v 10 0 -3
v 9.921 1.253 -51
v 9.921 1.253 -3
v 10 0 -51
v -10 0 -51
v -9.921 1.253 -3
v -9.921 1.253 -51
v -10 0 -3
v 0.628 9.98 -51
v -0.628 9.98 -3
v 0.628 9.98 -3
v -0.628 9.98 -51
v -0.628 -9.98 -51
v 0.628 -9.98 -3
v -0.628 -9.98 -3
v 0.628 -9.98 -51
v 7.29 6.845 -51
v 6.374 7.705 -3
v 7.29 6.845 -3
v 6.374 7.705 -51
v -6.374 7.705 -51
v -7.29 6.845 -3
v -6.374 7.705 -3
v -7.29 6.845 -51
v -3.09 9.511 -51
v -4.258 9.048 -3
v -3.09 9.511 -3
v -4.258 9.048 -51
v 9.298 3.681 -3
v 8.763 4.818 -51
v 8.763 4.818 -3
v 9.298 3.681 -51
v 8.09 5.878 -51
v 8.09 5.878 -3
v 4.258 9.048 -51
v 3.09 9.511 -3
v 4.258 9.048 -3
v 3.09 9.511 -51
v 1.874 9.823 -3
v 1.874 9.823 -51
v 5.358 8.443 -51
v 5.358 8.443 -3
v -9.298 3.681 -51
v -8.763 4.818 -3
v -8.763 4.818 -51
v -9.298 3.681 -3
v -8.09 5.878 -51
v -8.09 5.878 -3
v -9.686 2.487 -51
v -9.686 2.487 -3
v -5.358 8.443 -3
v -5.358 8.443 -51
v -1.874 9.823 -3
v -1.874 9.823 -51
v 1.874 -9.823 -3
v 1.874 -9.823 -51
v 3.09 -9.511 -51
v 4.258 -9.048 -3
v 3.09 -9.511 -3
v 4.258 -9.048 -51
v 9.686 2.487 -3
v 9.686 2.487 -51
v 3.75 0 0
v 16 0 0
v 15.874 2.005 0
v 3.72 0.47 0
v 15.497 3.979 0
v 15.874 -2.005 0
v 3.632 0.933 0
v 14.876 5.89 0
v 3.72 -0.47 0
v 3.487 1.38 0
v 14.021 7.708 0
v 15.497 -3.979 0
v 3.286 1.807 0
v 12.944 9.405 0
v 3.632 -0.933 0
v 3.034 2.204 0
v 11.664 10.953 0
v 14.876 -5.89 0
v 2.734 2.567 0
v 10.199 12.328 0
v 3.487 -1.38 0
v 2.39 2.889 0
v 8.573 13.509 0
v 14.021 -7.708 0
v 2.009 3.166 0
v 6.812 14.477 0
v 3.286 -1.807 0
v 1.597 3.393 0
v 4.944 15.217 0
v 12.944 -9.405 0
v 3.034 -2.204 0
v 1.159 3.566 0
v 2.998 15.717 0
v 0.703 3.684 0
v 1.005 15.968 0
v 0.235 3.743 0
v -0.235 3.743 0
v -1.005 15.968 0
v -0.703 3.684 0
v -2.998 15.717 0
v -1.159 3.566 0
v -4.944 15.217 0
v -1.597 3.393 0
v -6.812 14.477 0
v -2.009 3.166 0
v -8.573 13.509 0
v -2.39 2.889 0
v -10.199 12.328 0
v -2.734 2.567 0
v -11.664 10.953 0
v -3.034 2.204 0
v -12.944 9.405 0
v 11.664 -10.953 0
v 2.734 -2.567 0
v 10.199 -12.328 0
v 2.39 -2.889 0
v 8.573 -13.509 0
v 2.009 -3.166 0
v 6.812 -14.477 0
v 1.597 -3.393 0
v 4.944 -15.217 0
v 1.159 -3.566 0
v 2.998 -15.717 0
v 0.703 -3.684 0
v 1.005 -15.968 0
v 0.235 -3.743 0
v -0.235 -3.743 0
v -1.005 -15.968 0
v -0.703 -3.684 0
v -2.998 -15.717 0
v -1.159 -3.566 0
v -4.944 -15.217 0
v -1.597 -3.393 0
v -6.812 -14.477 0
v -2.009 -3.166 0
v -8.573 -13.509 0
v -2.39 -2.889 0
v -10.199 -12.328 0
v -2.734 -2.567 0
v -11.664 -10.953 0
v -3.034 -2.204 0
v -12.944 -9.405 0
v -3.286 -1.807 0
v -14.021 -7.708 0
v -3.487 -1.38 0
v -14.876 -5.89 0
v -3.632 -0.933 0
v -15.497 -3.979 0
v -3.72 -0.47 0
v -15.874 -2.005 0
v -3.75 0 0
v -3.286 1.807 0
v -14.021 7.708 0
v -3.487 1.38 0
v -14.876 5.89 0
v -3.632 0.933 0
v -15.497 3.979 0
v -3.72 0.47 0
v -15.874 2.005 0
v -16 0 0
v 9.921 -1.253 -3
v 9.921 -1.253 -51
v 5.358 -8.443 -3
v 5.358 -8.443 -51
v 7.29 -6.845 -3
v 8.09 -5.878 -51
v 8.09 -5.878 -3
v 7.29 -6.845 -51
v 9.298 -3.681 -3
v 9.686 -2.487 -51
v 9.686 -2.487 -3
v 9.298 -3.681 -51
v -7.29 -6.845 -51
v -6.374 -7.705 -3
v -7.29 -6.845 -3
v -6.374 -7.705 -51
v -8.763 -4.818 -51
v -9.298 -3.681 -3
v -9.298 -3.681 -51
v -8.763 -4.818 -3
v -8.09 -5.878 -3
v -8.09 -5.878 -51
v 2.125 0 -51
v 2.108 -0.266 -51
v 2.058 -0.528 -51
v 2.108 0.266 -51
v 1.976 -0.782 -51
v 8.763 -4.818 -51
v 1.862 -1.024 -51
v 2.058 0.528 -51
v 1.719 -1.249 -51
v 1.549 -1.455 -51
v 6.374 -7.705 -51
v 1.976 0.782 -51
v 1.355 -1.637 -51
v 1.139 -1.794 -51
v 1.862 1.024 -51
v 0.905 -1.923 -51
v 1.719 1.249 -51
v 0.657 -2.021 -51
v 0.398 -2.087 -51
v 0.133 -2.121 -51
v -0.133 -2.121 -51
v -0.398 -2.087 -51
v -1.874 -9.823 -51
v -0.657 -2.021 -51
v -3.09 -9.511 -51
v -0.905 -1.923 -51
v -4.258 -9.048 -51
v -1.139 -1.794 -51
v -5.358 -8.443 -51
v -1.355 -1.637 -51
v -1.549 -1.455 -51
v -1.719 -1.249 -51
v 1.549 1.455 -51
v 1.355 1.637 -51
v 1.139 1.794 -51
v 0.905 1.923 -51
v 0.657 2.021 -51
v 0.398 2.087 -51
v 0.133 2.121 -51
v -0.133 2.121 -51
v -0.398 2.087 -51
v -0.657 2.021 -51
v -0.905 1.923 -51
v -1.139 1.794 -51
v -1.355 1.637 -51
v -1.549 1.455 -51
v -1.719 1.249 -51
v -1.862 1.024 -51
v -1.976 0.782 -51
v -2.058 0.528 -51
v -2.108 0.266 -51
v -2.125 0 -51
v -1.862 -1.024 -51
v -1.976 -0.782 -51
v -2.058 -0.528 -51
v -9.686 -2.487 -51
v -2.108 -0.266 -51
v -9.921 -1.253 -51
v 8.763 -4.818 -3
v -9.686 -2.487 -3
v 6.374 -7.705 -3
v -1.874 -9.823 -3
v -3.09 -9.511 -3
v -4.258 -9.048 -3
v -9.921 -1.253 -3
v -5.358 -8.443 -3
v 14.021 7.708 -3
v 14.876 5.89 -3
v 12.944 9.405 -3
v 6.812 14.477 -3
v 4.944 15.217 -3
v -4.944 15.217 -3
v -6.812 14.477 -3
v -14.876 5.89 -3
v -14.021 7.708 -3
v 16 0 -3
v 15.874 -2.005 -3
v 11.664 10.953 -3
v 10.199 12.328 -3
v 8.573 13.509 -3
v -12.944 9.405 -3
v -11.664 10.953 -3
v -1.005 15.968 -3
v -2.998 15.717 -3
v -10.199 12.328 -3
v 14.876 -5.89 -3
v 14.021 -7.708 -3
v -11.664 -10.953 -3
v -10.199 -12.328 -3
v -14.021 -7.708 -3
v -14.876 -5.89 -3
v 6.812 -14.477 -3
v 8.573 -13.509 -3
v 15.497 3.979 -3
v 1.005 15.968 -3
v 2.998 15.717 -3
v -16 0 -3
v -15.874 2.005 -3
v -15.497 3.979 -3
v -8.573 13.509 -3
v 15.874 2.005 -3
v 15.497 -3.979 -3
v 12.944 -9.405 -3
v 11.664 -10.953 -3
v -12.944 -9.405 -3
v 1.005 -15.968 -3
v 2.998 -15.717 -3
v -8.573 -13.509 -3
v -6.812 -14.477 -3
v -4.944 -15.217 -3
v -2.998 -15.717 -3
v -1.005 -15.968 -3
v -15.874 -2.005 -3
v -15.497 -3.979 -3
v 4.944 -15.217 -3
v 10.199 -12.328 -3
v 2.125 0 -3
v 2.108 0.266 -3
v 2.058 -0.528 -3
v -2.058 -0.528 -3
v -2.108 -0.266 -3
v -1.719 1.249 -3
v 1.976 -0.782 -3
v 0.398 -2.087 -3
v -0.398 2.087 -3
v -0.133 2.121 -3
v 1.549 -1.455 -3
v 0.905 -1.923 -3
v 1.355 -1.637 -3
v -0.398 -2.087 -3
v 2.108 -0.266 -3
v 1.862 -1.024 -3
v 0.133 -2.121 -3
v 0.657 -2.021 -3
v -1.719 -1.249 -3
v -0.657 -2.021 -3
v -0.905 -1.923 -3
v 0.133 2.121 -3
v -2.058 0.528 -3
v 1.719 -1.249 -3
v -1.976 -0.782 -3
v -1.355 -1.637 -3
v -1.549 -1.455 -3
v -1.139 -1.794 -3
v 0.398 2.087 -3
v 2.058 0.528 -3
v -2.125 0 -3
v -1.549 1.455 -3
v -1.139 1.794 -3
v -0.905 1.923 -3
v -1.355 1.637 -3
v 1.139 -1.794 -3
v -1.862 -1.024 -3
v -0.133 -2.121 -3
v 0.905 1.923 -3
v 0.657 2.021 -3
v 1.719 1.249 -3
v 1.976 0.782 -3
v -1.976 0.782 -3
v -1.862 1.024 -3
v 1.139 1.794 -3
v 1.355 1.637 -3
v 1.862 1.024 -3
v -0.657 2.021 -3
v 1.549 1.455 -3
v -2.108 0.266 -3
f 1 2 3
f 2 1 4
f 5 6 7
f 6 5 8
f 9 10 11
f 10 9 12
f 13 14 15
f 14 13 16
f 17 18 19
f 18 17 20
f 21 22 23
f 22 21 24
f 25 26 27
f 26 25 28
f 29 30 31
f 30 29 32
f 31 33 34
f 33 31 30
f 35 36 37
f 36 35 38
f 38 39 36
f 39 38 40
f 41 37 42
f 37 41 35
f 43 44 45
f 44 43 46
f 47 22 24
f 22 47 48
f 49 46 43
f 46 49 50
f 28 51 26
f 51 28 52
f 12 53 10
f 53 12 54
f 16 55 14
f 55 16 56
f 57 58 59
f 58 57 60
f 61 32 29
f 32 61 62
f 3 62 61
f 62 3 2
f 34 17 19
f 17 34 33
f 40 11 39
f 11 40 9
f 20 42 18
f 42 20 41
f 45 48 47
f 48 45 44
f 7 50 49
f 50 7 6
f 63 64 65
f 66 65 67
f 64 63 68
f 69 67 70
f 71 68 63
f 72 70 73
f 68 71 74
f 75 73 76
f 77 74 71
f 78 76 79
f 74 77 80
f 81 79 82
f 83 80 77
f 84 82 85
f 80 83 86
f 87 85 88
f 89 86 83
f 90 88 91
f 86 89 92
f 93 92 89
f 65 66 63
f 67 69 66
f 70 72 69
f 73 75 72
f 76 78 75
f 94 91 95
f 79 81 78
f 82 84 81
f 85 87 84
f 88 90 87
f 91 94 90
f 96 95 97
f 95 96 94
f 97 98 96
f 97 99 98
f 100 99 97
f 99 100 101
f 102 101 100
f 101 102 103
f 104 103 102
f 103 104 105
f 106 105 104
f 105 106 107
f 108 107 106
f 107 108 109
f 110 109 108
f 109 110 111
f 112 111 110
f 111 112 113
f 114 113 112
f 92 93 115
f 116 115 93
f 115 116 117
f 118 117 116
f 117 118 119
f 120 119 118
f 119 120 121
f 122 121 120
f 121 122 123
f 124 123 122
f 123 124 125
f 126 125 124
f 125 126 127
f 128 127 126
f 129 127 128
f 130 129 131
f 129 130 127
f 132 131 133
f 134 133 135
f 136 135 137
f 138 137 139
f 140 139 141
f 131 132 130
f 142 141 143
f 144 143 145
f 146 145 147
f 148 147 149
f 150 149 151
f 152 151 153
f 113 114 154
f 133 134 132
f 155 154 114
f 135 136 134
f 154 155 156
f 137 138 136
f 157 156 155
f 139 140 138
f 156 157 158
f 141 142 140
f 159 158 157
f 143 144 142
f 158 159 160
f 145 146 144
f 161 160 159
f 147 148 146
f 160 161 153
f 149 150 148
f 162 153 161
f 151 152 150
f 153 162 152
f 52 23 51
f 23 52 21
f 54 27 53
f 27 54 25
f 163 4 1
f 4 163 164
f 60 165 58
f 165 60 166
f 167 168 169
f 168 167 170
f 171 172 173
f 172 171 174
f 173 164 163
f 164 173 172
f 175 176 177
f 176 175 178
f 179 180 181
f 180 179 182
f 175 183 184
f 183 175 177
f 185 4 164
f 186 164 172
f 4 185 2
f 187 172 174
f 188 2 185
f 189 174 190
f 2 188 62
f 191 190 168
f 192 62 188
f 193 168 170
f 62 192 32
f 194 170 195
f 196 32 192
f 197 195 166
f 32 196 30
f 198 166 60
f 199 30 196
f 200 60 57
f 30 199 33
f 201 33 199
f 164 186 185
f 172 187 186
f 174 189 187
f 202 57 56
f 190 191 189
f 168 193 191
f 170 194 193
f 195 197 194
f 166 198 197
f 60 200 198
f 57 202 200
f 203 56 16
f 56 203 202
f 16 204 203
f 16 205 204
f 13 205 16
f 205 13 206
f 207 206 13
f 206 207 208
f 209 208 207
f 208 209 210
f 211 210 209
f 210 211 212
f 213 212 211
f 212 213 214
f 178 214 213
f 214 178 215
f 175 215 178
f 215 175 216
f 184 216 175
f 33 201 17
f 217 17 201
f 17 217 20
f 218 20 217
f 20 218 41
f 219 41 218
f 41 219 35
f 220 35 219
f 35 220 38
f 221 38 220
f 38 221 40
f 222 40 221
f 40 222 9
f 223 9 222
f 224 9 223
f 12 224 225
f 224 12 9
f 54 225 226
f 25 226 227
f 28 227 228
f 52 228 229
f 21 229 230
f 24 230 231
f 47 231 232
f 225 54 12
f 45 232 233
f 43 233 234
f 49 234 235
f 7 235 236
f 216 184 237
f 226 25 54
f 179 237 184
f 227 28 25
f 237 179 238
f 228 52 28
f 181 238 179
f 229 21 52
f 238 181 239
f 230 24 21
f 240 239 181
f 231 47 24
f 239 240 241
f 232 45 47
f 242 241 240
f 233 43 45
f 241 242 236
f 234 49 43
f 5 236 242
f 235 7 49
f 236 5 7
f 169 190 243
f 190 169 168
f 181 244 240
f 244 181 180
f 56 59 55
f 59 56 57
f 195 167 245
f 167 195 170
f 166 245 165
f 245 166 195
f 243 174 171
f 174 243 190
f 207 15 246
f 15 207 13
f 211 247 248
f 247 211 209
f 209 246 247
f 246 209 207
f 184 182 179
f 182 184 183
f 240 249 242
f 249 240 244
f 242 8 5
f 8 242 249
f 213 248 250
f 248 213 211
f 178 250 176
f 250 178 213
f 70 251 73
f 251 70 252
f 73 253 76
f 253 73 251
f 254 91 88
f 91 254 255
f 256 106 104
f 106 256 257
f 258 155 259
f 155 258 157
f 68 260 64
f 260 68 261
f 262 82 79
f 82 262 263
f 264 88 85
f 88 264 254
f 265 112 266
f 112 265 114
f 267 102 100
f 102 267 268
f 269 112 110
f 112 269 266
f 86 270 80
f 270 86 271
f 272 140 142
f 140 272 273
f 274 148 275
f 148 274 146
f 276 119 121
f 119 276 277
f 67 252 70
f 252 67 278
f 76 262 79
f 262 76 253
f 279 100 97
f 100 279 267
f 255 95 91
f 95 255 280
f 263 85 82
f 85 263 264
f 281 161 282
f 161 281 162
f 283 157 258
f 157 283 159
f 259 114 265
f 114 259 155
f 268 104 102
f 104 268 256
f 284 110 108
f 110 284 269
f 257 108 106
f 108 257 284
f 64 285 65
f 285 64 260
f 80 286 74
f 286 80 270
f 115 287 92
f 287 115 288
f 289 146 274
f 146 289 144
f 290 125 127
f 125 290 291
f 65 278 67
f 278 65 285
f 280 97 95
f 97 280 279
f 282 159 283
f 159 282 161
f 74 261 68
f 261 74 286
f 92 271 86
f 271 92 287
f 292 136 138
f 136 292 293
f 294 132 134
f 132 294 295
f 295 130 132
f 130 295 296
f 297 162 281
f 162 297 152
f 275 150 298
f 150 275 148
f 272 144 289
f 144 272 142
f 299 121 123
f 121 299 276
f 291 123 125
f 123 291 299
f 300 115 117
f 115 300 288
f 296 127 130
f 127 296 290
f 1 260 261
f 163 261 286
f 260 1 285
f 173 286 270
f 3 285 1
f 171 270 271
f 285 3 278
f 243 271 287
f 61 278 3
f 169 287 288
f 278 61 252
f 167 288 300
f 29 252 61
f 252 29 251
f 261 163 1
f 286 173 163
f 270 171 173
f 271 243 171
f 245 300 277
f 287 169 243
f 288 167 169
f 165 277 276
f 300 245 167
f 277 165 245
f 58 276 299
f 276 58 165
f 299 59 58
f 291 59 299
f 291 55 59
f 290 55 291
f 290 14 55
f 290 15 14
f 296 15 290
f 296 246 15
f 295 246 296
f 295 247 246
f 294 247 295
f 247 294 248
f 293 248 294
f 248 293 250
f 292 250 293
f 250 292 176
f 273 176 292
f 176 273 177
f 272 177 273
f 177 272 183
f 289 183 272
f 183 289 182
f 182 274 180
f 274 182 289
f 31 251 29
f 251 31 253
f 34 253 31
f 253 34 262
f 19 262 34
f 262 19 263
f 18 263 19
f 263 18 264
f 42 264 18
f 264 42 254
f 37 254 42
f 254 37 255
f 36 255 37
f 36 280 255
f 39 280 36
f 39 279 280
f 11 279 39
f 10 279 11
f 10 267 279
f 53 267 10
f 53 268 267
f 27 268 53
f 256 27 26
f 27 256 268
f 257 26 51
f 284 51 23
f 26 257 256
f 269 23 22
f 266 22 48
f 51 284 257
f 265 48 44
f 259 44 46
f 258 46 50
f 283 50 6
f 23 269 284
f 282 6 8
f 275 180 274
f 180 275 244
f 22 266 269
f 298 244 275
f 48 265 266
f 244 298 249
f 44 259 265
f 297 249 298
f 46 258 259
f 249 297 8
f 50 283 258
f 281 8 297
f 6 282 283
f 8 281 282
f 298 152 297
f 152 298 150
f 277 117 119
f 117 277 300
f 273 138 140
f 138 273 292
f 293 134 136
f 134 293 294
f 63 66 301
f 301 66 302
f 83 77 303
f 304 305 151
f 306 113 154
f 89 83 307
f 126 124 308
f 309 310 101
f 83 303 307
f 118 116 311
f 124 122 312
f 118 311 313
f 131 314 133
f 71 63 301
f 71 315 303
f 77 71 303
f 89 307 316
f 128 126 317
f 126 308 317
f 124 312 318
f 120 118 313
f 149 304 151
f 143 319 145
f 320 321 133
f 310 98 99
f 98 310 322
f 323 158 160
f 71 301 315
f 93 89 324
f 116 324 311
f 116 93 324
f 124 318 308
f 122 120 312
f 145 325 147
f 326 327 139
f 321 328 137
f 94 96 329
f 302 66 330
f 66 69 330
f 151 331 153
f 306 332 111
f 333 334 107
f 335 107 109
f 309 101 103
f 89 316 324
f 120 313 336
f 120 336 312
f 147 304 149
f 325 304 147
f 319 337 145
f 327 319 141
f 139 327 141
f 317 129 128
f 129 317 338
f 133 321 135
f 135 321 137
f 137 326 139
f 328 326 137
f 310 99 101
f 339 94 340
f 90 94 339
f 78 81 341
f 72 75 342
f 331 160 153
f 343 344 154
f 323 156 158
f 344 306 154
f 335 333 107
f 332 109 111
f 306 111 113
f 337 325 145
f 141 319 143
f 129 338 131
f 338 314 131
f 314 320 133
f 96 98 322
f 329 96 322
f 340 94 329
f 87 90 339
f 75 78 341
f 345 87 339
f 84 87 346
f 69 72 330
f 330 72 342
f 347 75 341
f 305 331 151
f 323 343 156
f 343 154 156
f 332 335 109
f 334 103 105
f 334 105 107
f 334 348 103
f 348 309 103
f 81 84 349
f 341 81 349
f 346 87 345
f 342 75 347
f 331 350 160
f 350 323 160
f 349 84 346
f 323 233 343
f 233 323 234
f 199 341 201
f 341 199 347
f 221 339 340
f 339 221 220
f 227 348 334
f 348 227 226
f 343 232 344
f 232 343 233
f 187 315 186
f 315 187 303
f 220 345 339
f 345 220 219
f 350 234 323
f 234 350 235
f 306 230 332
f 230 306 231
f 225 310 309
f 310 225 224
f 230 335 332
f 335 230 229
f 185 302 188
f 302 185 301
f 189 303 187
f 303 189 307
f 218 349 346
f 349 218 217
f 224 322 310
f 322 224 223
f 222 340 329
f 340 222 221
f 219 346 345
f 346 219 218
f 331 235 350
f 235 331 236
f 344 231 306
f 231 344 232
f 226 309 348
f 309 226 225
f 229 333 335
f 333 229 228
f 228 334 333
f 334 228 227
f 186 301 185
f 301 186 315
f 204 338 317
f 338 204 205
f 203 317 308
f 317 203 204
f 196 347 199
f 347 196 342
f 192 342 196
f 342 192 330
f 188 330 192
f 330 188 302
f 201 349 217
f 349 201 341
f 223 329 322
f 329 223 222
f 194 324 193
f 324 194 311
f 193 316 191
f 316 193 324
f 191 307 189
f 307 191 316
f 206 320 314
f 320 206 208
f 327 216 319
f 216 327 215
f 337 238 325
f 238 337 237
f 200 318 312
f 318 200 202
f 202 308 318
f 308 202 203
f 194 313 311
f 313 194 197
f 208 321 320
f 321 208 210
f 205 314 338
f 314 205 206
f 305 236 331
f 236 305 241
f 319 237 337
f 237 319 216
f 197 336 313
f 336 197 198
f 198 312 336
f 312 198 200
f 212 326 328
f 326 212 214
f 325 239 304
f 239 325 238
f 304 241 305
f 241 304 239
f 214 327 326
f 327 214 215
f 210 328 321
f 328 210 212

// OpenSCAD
$fn = 50;


difference() {
	union() {
		translate(v = [0, 0, -51.0000000000]) {
			cylinder(h = 51, r = 10.0000000000);
		}
		translate(v = [0, 0, -3.0000000000]) {
			cylinder(h = 3, r = 16.0000000000);
		}
	}
	union() {
		translate(v = [0, 0, 0]) {
			rotate(a = [0, 0, 0]) {
				difference() {
					union() {
						#translate(v = [0, 0, -51.0000000000]) {
							cylinder(h = 51, r = 2.0000000000);
						}
						#translate(v = [0, 0, -3]) {
							cylinder(h = 3, r1 = 2.1250000000, r2 = 3.7500000000);
						}
						#translate(v = [0, 0, -51.0000000000]) {
							cylinder(h = 51, r = 2.1250000000);
						}
						#translate(v = [0, 0, -51.0000000000]) {
							cylinder(h = 51, r = 2.0000000000);
						}
					}
					union();
				}
			}
		}
	}
}
